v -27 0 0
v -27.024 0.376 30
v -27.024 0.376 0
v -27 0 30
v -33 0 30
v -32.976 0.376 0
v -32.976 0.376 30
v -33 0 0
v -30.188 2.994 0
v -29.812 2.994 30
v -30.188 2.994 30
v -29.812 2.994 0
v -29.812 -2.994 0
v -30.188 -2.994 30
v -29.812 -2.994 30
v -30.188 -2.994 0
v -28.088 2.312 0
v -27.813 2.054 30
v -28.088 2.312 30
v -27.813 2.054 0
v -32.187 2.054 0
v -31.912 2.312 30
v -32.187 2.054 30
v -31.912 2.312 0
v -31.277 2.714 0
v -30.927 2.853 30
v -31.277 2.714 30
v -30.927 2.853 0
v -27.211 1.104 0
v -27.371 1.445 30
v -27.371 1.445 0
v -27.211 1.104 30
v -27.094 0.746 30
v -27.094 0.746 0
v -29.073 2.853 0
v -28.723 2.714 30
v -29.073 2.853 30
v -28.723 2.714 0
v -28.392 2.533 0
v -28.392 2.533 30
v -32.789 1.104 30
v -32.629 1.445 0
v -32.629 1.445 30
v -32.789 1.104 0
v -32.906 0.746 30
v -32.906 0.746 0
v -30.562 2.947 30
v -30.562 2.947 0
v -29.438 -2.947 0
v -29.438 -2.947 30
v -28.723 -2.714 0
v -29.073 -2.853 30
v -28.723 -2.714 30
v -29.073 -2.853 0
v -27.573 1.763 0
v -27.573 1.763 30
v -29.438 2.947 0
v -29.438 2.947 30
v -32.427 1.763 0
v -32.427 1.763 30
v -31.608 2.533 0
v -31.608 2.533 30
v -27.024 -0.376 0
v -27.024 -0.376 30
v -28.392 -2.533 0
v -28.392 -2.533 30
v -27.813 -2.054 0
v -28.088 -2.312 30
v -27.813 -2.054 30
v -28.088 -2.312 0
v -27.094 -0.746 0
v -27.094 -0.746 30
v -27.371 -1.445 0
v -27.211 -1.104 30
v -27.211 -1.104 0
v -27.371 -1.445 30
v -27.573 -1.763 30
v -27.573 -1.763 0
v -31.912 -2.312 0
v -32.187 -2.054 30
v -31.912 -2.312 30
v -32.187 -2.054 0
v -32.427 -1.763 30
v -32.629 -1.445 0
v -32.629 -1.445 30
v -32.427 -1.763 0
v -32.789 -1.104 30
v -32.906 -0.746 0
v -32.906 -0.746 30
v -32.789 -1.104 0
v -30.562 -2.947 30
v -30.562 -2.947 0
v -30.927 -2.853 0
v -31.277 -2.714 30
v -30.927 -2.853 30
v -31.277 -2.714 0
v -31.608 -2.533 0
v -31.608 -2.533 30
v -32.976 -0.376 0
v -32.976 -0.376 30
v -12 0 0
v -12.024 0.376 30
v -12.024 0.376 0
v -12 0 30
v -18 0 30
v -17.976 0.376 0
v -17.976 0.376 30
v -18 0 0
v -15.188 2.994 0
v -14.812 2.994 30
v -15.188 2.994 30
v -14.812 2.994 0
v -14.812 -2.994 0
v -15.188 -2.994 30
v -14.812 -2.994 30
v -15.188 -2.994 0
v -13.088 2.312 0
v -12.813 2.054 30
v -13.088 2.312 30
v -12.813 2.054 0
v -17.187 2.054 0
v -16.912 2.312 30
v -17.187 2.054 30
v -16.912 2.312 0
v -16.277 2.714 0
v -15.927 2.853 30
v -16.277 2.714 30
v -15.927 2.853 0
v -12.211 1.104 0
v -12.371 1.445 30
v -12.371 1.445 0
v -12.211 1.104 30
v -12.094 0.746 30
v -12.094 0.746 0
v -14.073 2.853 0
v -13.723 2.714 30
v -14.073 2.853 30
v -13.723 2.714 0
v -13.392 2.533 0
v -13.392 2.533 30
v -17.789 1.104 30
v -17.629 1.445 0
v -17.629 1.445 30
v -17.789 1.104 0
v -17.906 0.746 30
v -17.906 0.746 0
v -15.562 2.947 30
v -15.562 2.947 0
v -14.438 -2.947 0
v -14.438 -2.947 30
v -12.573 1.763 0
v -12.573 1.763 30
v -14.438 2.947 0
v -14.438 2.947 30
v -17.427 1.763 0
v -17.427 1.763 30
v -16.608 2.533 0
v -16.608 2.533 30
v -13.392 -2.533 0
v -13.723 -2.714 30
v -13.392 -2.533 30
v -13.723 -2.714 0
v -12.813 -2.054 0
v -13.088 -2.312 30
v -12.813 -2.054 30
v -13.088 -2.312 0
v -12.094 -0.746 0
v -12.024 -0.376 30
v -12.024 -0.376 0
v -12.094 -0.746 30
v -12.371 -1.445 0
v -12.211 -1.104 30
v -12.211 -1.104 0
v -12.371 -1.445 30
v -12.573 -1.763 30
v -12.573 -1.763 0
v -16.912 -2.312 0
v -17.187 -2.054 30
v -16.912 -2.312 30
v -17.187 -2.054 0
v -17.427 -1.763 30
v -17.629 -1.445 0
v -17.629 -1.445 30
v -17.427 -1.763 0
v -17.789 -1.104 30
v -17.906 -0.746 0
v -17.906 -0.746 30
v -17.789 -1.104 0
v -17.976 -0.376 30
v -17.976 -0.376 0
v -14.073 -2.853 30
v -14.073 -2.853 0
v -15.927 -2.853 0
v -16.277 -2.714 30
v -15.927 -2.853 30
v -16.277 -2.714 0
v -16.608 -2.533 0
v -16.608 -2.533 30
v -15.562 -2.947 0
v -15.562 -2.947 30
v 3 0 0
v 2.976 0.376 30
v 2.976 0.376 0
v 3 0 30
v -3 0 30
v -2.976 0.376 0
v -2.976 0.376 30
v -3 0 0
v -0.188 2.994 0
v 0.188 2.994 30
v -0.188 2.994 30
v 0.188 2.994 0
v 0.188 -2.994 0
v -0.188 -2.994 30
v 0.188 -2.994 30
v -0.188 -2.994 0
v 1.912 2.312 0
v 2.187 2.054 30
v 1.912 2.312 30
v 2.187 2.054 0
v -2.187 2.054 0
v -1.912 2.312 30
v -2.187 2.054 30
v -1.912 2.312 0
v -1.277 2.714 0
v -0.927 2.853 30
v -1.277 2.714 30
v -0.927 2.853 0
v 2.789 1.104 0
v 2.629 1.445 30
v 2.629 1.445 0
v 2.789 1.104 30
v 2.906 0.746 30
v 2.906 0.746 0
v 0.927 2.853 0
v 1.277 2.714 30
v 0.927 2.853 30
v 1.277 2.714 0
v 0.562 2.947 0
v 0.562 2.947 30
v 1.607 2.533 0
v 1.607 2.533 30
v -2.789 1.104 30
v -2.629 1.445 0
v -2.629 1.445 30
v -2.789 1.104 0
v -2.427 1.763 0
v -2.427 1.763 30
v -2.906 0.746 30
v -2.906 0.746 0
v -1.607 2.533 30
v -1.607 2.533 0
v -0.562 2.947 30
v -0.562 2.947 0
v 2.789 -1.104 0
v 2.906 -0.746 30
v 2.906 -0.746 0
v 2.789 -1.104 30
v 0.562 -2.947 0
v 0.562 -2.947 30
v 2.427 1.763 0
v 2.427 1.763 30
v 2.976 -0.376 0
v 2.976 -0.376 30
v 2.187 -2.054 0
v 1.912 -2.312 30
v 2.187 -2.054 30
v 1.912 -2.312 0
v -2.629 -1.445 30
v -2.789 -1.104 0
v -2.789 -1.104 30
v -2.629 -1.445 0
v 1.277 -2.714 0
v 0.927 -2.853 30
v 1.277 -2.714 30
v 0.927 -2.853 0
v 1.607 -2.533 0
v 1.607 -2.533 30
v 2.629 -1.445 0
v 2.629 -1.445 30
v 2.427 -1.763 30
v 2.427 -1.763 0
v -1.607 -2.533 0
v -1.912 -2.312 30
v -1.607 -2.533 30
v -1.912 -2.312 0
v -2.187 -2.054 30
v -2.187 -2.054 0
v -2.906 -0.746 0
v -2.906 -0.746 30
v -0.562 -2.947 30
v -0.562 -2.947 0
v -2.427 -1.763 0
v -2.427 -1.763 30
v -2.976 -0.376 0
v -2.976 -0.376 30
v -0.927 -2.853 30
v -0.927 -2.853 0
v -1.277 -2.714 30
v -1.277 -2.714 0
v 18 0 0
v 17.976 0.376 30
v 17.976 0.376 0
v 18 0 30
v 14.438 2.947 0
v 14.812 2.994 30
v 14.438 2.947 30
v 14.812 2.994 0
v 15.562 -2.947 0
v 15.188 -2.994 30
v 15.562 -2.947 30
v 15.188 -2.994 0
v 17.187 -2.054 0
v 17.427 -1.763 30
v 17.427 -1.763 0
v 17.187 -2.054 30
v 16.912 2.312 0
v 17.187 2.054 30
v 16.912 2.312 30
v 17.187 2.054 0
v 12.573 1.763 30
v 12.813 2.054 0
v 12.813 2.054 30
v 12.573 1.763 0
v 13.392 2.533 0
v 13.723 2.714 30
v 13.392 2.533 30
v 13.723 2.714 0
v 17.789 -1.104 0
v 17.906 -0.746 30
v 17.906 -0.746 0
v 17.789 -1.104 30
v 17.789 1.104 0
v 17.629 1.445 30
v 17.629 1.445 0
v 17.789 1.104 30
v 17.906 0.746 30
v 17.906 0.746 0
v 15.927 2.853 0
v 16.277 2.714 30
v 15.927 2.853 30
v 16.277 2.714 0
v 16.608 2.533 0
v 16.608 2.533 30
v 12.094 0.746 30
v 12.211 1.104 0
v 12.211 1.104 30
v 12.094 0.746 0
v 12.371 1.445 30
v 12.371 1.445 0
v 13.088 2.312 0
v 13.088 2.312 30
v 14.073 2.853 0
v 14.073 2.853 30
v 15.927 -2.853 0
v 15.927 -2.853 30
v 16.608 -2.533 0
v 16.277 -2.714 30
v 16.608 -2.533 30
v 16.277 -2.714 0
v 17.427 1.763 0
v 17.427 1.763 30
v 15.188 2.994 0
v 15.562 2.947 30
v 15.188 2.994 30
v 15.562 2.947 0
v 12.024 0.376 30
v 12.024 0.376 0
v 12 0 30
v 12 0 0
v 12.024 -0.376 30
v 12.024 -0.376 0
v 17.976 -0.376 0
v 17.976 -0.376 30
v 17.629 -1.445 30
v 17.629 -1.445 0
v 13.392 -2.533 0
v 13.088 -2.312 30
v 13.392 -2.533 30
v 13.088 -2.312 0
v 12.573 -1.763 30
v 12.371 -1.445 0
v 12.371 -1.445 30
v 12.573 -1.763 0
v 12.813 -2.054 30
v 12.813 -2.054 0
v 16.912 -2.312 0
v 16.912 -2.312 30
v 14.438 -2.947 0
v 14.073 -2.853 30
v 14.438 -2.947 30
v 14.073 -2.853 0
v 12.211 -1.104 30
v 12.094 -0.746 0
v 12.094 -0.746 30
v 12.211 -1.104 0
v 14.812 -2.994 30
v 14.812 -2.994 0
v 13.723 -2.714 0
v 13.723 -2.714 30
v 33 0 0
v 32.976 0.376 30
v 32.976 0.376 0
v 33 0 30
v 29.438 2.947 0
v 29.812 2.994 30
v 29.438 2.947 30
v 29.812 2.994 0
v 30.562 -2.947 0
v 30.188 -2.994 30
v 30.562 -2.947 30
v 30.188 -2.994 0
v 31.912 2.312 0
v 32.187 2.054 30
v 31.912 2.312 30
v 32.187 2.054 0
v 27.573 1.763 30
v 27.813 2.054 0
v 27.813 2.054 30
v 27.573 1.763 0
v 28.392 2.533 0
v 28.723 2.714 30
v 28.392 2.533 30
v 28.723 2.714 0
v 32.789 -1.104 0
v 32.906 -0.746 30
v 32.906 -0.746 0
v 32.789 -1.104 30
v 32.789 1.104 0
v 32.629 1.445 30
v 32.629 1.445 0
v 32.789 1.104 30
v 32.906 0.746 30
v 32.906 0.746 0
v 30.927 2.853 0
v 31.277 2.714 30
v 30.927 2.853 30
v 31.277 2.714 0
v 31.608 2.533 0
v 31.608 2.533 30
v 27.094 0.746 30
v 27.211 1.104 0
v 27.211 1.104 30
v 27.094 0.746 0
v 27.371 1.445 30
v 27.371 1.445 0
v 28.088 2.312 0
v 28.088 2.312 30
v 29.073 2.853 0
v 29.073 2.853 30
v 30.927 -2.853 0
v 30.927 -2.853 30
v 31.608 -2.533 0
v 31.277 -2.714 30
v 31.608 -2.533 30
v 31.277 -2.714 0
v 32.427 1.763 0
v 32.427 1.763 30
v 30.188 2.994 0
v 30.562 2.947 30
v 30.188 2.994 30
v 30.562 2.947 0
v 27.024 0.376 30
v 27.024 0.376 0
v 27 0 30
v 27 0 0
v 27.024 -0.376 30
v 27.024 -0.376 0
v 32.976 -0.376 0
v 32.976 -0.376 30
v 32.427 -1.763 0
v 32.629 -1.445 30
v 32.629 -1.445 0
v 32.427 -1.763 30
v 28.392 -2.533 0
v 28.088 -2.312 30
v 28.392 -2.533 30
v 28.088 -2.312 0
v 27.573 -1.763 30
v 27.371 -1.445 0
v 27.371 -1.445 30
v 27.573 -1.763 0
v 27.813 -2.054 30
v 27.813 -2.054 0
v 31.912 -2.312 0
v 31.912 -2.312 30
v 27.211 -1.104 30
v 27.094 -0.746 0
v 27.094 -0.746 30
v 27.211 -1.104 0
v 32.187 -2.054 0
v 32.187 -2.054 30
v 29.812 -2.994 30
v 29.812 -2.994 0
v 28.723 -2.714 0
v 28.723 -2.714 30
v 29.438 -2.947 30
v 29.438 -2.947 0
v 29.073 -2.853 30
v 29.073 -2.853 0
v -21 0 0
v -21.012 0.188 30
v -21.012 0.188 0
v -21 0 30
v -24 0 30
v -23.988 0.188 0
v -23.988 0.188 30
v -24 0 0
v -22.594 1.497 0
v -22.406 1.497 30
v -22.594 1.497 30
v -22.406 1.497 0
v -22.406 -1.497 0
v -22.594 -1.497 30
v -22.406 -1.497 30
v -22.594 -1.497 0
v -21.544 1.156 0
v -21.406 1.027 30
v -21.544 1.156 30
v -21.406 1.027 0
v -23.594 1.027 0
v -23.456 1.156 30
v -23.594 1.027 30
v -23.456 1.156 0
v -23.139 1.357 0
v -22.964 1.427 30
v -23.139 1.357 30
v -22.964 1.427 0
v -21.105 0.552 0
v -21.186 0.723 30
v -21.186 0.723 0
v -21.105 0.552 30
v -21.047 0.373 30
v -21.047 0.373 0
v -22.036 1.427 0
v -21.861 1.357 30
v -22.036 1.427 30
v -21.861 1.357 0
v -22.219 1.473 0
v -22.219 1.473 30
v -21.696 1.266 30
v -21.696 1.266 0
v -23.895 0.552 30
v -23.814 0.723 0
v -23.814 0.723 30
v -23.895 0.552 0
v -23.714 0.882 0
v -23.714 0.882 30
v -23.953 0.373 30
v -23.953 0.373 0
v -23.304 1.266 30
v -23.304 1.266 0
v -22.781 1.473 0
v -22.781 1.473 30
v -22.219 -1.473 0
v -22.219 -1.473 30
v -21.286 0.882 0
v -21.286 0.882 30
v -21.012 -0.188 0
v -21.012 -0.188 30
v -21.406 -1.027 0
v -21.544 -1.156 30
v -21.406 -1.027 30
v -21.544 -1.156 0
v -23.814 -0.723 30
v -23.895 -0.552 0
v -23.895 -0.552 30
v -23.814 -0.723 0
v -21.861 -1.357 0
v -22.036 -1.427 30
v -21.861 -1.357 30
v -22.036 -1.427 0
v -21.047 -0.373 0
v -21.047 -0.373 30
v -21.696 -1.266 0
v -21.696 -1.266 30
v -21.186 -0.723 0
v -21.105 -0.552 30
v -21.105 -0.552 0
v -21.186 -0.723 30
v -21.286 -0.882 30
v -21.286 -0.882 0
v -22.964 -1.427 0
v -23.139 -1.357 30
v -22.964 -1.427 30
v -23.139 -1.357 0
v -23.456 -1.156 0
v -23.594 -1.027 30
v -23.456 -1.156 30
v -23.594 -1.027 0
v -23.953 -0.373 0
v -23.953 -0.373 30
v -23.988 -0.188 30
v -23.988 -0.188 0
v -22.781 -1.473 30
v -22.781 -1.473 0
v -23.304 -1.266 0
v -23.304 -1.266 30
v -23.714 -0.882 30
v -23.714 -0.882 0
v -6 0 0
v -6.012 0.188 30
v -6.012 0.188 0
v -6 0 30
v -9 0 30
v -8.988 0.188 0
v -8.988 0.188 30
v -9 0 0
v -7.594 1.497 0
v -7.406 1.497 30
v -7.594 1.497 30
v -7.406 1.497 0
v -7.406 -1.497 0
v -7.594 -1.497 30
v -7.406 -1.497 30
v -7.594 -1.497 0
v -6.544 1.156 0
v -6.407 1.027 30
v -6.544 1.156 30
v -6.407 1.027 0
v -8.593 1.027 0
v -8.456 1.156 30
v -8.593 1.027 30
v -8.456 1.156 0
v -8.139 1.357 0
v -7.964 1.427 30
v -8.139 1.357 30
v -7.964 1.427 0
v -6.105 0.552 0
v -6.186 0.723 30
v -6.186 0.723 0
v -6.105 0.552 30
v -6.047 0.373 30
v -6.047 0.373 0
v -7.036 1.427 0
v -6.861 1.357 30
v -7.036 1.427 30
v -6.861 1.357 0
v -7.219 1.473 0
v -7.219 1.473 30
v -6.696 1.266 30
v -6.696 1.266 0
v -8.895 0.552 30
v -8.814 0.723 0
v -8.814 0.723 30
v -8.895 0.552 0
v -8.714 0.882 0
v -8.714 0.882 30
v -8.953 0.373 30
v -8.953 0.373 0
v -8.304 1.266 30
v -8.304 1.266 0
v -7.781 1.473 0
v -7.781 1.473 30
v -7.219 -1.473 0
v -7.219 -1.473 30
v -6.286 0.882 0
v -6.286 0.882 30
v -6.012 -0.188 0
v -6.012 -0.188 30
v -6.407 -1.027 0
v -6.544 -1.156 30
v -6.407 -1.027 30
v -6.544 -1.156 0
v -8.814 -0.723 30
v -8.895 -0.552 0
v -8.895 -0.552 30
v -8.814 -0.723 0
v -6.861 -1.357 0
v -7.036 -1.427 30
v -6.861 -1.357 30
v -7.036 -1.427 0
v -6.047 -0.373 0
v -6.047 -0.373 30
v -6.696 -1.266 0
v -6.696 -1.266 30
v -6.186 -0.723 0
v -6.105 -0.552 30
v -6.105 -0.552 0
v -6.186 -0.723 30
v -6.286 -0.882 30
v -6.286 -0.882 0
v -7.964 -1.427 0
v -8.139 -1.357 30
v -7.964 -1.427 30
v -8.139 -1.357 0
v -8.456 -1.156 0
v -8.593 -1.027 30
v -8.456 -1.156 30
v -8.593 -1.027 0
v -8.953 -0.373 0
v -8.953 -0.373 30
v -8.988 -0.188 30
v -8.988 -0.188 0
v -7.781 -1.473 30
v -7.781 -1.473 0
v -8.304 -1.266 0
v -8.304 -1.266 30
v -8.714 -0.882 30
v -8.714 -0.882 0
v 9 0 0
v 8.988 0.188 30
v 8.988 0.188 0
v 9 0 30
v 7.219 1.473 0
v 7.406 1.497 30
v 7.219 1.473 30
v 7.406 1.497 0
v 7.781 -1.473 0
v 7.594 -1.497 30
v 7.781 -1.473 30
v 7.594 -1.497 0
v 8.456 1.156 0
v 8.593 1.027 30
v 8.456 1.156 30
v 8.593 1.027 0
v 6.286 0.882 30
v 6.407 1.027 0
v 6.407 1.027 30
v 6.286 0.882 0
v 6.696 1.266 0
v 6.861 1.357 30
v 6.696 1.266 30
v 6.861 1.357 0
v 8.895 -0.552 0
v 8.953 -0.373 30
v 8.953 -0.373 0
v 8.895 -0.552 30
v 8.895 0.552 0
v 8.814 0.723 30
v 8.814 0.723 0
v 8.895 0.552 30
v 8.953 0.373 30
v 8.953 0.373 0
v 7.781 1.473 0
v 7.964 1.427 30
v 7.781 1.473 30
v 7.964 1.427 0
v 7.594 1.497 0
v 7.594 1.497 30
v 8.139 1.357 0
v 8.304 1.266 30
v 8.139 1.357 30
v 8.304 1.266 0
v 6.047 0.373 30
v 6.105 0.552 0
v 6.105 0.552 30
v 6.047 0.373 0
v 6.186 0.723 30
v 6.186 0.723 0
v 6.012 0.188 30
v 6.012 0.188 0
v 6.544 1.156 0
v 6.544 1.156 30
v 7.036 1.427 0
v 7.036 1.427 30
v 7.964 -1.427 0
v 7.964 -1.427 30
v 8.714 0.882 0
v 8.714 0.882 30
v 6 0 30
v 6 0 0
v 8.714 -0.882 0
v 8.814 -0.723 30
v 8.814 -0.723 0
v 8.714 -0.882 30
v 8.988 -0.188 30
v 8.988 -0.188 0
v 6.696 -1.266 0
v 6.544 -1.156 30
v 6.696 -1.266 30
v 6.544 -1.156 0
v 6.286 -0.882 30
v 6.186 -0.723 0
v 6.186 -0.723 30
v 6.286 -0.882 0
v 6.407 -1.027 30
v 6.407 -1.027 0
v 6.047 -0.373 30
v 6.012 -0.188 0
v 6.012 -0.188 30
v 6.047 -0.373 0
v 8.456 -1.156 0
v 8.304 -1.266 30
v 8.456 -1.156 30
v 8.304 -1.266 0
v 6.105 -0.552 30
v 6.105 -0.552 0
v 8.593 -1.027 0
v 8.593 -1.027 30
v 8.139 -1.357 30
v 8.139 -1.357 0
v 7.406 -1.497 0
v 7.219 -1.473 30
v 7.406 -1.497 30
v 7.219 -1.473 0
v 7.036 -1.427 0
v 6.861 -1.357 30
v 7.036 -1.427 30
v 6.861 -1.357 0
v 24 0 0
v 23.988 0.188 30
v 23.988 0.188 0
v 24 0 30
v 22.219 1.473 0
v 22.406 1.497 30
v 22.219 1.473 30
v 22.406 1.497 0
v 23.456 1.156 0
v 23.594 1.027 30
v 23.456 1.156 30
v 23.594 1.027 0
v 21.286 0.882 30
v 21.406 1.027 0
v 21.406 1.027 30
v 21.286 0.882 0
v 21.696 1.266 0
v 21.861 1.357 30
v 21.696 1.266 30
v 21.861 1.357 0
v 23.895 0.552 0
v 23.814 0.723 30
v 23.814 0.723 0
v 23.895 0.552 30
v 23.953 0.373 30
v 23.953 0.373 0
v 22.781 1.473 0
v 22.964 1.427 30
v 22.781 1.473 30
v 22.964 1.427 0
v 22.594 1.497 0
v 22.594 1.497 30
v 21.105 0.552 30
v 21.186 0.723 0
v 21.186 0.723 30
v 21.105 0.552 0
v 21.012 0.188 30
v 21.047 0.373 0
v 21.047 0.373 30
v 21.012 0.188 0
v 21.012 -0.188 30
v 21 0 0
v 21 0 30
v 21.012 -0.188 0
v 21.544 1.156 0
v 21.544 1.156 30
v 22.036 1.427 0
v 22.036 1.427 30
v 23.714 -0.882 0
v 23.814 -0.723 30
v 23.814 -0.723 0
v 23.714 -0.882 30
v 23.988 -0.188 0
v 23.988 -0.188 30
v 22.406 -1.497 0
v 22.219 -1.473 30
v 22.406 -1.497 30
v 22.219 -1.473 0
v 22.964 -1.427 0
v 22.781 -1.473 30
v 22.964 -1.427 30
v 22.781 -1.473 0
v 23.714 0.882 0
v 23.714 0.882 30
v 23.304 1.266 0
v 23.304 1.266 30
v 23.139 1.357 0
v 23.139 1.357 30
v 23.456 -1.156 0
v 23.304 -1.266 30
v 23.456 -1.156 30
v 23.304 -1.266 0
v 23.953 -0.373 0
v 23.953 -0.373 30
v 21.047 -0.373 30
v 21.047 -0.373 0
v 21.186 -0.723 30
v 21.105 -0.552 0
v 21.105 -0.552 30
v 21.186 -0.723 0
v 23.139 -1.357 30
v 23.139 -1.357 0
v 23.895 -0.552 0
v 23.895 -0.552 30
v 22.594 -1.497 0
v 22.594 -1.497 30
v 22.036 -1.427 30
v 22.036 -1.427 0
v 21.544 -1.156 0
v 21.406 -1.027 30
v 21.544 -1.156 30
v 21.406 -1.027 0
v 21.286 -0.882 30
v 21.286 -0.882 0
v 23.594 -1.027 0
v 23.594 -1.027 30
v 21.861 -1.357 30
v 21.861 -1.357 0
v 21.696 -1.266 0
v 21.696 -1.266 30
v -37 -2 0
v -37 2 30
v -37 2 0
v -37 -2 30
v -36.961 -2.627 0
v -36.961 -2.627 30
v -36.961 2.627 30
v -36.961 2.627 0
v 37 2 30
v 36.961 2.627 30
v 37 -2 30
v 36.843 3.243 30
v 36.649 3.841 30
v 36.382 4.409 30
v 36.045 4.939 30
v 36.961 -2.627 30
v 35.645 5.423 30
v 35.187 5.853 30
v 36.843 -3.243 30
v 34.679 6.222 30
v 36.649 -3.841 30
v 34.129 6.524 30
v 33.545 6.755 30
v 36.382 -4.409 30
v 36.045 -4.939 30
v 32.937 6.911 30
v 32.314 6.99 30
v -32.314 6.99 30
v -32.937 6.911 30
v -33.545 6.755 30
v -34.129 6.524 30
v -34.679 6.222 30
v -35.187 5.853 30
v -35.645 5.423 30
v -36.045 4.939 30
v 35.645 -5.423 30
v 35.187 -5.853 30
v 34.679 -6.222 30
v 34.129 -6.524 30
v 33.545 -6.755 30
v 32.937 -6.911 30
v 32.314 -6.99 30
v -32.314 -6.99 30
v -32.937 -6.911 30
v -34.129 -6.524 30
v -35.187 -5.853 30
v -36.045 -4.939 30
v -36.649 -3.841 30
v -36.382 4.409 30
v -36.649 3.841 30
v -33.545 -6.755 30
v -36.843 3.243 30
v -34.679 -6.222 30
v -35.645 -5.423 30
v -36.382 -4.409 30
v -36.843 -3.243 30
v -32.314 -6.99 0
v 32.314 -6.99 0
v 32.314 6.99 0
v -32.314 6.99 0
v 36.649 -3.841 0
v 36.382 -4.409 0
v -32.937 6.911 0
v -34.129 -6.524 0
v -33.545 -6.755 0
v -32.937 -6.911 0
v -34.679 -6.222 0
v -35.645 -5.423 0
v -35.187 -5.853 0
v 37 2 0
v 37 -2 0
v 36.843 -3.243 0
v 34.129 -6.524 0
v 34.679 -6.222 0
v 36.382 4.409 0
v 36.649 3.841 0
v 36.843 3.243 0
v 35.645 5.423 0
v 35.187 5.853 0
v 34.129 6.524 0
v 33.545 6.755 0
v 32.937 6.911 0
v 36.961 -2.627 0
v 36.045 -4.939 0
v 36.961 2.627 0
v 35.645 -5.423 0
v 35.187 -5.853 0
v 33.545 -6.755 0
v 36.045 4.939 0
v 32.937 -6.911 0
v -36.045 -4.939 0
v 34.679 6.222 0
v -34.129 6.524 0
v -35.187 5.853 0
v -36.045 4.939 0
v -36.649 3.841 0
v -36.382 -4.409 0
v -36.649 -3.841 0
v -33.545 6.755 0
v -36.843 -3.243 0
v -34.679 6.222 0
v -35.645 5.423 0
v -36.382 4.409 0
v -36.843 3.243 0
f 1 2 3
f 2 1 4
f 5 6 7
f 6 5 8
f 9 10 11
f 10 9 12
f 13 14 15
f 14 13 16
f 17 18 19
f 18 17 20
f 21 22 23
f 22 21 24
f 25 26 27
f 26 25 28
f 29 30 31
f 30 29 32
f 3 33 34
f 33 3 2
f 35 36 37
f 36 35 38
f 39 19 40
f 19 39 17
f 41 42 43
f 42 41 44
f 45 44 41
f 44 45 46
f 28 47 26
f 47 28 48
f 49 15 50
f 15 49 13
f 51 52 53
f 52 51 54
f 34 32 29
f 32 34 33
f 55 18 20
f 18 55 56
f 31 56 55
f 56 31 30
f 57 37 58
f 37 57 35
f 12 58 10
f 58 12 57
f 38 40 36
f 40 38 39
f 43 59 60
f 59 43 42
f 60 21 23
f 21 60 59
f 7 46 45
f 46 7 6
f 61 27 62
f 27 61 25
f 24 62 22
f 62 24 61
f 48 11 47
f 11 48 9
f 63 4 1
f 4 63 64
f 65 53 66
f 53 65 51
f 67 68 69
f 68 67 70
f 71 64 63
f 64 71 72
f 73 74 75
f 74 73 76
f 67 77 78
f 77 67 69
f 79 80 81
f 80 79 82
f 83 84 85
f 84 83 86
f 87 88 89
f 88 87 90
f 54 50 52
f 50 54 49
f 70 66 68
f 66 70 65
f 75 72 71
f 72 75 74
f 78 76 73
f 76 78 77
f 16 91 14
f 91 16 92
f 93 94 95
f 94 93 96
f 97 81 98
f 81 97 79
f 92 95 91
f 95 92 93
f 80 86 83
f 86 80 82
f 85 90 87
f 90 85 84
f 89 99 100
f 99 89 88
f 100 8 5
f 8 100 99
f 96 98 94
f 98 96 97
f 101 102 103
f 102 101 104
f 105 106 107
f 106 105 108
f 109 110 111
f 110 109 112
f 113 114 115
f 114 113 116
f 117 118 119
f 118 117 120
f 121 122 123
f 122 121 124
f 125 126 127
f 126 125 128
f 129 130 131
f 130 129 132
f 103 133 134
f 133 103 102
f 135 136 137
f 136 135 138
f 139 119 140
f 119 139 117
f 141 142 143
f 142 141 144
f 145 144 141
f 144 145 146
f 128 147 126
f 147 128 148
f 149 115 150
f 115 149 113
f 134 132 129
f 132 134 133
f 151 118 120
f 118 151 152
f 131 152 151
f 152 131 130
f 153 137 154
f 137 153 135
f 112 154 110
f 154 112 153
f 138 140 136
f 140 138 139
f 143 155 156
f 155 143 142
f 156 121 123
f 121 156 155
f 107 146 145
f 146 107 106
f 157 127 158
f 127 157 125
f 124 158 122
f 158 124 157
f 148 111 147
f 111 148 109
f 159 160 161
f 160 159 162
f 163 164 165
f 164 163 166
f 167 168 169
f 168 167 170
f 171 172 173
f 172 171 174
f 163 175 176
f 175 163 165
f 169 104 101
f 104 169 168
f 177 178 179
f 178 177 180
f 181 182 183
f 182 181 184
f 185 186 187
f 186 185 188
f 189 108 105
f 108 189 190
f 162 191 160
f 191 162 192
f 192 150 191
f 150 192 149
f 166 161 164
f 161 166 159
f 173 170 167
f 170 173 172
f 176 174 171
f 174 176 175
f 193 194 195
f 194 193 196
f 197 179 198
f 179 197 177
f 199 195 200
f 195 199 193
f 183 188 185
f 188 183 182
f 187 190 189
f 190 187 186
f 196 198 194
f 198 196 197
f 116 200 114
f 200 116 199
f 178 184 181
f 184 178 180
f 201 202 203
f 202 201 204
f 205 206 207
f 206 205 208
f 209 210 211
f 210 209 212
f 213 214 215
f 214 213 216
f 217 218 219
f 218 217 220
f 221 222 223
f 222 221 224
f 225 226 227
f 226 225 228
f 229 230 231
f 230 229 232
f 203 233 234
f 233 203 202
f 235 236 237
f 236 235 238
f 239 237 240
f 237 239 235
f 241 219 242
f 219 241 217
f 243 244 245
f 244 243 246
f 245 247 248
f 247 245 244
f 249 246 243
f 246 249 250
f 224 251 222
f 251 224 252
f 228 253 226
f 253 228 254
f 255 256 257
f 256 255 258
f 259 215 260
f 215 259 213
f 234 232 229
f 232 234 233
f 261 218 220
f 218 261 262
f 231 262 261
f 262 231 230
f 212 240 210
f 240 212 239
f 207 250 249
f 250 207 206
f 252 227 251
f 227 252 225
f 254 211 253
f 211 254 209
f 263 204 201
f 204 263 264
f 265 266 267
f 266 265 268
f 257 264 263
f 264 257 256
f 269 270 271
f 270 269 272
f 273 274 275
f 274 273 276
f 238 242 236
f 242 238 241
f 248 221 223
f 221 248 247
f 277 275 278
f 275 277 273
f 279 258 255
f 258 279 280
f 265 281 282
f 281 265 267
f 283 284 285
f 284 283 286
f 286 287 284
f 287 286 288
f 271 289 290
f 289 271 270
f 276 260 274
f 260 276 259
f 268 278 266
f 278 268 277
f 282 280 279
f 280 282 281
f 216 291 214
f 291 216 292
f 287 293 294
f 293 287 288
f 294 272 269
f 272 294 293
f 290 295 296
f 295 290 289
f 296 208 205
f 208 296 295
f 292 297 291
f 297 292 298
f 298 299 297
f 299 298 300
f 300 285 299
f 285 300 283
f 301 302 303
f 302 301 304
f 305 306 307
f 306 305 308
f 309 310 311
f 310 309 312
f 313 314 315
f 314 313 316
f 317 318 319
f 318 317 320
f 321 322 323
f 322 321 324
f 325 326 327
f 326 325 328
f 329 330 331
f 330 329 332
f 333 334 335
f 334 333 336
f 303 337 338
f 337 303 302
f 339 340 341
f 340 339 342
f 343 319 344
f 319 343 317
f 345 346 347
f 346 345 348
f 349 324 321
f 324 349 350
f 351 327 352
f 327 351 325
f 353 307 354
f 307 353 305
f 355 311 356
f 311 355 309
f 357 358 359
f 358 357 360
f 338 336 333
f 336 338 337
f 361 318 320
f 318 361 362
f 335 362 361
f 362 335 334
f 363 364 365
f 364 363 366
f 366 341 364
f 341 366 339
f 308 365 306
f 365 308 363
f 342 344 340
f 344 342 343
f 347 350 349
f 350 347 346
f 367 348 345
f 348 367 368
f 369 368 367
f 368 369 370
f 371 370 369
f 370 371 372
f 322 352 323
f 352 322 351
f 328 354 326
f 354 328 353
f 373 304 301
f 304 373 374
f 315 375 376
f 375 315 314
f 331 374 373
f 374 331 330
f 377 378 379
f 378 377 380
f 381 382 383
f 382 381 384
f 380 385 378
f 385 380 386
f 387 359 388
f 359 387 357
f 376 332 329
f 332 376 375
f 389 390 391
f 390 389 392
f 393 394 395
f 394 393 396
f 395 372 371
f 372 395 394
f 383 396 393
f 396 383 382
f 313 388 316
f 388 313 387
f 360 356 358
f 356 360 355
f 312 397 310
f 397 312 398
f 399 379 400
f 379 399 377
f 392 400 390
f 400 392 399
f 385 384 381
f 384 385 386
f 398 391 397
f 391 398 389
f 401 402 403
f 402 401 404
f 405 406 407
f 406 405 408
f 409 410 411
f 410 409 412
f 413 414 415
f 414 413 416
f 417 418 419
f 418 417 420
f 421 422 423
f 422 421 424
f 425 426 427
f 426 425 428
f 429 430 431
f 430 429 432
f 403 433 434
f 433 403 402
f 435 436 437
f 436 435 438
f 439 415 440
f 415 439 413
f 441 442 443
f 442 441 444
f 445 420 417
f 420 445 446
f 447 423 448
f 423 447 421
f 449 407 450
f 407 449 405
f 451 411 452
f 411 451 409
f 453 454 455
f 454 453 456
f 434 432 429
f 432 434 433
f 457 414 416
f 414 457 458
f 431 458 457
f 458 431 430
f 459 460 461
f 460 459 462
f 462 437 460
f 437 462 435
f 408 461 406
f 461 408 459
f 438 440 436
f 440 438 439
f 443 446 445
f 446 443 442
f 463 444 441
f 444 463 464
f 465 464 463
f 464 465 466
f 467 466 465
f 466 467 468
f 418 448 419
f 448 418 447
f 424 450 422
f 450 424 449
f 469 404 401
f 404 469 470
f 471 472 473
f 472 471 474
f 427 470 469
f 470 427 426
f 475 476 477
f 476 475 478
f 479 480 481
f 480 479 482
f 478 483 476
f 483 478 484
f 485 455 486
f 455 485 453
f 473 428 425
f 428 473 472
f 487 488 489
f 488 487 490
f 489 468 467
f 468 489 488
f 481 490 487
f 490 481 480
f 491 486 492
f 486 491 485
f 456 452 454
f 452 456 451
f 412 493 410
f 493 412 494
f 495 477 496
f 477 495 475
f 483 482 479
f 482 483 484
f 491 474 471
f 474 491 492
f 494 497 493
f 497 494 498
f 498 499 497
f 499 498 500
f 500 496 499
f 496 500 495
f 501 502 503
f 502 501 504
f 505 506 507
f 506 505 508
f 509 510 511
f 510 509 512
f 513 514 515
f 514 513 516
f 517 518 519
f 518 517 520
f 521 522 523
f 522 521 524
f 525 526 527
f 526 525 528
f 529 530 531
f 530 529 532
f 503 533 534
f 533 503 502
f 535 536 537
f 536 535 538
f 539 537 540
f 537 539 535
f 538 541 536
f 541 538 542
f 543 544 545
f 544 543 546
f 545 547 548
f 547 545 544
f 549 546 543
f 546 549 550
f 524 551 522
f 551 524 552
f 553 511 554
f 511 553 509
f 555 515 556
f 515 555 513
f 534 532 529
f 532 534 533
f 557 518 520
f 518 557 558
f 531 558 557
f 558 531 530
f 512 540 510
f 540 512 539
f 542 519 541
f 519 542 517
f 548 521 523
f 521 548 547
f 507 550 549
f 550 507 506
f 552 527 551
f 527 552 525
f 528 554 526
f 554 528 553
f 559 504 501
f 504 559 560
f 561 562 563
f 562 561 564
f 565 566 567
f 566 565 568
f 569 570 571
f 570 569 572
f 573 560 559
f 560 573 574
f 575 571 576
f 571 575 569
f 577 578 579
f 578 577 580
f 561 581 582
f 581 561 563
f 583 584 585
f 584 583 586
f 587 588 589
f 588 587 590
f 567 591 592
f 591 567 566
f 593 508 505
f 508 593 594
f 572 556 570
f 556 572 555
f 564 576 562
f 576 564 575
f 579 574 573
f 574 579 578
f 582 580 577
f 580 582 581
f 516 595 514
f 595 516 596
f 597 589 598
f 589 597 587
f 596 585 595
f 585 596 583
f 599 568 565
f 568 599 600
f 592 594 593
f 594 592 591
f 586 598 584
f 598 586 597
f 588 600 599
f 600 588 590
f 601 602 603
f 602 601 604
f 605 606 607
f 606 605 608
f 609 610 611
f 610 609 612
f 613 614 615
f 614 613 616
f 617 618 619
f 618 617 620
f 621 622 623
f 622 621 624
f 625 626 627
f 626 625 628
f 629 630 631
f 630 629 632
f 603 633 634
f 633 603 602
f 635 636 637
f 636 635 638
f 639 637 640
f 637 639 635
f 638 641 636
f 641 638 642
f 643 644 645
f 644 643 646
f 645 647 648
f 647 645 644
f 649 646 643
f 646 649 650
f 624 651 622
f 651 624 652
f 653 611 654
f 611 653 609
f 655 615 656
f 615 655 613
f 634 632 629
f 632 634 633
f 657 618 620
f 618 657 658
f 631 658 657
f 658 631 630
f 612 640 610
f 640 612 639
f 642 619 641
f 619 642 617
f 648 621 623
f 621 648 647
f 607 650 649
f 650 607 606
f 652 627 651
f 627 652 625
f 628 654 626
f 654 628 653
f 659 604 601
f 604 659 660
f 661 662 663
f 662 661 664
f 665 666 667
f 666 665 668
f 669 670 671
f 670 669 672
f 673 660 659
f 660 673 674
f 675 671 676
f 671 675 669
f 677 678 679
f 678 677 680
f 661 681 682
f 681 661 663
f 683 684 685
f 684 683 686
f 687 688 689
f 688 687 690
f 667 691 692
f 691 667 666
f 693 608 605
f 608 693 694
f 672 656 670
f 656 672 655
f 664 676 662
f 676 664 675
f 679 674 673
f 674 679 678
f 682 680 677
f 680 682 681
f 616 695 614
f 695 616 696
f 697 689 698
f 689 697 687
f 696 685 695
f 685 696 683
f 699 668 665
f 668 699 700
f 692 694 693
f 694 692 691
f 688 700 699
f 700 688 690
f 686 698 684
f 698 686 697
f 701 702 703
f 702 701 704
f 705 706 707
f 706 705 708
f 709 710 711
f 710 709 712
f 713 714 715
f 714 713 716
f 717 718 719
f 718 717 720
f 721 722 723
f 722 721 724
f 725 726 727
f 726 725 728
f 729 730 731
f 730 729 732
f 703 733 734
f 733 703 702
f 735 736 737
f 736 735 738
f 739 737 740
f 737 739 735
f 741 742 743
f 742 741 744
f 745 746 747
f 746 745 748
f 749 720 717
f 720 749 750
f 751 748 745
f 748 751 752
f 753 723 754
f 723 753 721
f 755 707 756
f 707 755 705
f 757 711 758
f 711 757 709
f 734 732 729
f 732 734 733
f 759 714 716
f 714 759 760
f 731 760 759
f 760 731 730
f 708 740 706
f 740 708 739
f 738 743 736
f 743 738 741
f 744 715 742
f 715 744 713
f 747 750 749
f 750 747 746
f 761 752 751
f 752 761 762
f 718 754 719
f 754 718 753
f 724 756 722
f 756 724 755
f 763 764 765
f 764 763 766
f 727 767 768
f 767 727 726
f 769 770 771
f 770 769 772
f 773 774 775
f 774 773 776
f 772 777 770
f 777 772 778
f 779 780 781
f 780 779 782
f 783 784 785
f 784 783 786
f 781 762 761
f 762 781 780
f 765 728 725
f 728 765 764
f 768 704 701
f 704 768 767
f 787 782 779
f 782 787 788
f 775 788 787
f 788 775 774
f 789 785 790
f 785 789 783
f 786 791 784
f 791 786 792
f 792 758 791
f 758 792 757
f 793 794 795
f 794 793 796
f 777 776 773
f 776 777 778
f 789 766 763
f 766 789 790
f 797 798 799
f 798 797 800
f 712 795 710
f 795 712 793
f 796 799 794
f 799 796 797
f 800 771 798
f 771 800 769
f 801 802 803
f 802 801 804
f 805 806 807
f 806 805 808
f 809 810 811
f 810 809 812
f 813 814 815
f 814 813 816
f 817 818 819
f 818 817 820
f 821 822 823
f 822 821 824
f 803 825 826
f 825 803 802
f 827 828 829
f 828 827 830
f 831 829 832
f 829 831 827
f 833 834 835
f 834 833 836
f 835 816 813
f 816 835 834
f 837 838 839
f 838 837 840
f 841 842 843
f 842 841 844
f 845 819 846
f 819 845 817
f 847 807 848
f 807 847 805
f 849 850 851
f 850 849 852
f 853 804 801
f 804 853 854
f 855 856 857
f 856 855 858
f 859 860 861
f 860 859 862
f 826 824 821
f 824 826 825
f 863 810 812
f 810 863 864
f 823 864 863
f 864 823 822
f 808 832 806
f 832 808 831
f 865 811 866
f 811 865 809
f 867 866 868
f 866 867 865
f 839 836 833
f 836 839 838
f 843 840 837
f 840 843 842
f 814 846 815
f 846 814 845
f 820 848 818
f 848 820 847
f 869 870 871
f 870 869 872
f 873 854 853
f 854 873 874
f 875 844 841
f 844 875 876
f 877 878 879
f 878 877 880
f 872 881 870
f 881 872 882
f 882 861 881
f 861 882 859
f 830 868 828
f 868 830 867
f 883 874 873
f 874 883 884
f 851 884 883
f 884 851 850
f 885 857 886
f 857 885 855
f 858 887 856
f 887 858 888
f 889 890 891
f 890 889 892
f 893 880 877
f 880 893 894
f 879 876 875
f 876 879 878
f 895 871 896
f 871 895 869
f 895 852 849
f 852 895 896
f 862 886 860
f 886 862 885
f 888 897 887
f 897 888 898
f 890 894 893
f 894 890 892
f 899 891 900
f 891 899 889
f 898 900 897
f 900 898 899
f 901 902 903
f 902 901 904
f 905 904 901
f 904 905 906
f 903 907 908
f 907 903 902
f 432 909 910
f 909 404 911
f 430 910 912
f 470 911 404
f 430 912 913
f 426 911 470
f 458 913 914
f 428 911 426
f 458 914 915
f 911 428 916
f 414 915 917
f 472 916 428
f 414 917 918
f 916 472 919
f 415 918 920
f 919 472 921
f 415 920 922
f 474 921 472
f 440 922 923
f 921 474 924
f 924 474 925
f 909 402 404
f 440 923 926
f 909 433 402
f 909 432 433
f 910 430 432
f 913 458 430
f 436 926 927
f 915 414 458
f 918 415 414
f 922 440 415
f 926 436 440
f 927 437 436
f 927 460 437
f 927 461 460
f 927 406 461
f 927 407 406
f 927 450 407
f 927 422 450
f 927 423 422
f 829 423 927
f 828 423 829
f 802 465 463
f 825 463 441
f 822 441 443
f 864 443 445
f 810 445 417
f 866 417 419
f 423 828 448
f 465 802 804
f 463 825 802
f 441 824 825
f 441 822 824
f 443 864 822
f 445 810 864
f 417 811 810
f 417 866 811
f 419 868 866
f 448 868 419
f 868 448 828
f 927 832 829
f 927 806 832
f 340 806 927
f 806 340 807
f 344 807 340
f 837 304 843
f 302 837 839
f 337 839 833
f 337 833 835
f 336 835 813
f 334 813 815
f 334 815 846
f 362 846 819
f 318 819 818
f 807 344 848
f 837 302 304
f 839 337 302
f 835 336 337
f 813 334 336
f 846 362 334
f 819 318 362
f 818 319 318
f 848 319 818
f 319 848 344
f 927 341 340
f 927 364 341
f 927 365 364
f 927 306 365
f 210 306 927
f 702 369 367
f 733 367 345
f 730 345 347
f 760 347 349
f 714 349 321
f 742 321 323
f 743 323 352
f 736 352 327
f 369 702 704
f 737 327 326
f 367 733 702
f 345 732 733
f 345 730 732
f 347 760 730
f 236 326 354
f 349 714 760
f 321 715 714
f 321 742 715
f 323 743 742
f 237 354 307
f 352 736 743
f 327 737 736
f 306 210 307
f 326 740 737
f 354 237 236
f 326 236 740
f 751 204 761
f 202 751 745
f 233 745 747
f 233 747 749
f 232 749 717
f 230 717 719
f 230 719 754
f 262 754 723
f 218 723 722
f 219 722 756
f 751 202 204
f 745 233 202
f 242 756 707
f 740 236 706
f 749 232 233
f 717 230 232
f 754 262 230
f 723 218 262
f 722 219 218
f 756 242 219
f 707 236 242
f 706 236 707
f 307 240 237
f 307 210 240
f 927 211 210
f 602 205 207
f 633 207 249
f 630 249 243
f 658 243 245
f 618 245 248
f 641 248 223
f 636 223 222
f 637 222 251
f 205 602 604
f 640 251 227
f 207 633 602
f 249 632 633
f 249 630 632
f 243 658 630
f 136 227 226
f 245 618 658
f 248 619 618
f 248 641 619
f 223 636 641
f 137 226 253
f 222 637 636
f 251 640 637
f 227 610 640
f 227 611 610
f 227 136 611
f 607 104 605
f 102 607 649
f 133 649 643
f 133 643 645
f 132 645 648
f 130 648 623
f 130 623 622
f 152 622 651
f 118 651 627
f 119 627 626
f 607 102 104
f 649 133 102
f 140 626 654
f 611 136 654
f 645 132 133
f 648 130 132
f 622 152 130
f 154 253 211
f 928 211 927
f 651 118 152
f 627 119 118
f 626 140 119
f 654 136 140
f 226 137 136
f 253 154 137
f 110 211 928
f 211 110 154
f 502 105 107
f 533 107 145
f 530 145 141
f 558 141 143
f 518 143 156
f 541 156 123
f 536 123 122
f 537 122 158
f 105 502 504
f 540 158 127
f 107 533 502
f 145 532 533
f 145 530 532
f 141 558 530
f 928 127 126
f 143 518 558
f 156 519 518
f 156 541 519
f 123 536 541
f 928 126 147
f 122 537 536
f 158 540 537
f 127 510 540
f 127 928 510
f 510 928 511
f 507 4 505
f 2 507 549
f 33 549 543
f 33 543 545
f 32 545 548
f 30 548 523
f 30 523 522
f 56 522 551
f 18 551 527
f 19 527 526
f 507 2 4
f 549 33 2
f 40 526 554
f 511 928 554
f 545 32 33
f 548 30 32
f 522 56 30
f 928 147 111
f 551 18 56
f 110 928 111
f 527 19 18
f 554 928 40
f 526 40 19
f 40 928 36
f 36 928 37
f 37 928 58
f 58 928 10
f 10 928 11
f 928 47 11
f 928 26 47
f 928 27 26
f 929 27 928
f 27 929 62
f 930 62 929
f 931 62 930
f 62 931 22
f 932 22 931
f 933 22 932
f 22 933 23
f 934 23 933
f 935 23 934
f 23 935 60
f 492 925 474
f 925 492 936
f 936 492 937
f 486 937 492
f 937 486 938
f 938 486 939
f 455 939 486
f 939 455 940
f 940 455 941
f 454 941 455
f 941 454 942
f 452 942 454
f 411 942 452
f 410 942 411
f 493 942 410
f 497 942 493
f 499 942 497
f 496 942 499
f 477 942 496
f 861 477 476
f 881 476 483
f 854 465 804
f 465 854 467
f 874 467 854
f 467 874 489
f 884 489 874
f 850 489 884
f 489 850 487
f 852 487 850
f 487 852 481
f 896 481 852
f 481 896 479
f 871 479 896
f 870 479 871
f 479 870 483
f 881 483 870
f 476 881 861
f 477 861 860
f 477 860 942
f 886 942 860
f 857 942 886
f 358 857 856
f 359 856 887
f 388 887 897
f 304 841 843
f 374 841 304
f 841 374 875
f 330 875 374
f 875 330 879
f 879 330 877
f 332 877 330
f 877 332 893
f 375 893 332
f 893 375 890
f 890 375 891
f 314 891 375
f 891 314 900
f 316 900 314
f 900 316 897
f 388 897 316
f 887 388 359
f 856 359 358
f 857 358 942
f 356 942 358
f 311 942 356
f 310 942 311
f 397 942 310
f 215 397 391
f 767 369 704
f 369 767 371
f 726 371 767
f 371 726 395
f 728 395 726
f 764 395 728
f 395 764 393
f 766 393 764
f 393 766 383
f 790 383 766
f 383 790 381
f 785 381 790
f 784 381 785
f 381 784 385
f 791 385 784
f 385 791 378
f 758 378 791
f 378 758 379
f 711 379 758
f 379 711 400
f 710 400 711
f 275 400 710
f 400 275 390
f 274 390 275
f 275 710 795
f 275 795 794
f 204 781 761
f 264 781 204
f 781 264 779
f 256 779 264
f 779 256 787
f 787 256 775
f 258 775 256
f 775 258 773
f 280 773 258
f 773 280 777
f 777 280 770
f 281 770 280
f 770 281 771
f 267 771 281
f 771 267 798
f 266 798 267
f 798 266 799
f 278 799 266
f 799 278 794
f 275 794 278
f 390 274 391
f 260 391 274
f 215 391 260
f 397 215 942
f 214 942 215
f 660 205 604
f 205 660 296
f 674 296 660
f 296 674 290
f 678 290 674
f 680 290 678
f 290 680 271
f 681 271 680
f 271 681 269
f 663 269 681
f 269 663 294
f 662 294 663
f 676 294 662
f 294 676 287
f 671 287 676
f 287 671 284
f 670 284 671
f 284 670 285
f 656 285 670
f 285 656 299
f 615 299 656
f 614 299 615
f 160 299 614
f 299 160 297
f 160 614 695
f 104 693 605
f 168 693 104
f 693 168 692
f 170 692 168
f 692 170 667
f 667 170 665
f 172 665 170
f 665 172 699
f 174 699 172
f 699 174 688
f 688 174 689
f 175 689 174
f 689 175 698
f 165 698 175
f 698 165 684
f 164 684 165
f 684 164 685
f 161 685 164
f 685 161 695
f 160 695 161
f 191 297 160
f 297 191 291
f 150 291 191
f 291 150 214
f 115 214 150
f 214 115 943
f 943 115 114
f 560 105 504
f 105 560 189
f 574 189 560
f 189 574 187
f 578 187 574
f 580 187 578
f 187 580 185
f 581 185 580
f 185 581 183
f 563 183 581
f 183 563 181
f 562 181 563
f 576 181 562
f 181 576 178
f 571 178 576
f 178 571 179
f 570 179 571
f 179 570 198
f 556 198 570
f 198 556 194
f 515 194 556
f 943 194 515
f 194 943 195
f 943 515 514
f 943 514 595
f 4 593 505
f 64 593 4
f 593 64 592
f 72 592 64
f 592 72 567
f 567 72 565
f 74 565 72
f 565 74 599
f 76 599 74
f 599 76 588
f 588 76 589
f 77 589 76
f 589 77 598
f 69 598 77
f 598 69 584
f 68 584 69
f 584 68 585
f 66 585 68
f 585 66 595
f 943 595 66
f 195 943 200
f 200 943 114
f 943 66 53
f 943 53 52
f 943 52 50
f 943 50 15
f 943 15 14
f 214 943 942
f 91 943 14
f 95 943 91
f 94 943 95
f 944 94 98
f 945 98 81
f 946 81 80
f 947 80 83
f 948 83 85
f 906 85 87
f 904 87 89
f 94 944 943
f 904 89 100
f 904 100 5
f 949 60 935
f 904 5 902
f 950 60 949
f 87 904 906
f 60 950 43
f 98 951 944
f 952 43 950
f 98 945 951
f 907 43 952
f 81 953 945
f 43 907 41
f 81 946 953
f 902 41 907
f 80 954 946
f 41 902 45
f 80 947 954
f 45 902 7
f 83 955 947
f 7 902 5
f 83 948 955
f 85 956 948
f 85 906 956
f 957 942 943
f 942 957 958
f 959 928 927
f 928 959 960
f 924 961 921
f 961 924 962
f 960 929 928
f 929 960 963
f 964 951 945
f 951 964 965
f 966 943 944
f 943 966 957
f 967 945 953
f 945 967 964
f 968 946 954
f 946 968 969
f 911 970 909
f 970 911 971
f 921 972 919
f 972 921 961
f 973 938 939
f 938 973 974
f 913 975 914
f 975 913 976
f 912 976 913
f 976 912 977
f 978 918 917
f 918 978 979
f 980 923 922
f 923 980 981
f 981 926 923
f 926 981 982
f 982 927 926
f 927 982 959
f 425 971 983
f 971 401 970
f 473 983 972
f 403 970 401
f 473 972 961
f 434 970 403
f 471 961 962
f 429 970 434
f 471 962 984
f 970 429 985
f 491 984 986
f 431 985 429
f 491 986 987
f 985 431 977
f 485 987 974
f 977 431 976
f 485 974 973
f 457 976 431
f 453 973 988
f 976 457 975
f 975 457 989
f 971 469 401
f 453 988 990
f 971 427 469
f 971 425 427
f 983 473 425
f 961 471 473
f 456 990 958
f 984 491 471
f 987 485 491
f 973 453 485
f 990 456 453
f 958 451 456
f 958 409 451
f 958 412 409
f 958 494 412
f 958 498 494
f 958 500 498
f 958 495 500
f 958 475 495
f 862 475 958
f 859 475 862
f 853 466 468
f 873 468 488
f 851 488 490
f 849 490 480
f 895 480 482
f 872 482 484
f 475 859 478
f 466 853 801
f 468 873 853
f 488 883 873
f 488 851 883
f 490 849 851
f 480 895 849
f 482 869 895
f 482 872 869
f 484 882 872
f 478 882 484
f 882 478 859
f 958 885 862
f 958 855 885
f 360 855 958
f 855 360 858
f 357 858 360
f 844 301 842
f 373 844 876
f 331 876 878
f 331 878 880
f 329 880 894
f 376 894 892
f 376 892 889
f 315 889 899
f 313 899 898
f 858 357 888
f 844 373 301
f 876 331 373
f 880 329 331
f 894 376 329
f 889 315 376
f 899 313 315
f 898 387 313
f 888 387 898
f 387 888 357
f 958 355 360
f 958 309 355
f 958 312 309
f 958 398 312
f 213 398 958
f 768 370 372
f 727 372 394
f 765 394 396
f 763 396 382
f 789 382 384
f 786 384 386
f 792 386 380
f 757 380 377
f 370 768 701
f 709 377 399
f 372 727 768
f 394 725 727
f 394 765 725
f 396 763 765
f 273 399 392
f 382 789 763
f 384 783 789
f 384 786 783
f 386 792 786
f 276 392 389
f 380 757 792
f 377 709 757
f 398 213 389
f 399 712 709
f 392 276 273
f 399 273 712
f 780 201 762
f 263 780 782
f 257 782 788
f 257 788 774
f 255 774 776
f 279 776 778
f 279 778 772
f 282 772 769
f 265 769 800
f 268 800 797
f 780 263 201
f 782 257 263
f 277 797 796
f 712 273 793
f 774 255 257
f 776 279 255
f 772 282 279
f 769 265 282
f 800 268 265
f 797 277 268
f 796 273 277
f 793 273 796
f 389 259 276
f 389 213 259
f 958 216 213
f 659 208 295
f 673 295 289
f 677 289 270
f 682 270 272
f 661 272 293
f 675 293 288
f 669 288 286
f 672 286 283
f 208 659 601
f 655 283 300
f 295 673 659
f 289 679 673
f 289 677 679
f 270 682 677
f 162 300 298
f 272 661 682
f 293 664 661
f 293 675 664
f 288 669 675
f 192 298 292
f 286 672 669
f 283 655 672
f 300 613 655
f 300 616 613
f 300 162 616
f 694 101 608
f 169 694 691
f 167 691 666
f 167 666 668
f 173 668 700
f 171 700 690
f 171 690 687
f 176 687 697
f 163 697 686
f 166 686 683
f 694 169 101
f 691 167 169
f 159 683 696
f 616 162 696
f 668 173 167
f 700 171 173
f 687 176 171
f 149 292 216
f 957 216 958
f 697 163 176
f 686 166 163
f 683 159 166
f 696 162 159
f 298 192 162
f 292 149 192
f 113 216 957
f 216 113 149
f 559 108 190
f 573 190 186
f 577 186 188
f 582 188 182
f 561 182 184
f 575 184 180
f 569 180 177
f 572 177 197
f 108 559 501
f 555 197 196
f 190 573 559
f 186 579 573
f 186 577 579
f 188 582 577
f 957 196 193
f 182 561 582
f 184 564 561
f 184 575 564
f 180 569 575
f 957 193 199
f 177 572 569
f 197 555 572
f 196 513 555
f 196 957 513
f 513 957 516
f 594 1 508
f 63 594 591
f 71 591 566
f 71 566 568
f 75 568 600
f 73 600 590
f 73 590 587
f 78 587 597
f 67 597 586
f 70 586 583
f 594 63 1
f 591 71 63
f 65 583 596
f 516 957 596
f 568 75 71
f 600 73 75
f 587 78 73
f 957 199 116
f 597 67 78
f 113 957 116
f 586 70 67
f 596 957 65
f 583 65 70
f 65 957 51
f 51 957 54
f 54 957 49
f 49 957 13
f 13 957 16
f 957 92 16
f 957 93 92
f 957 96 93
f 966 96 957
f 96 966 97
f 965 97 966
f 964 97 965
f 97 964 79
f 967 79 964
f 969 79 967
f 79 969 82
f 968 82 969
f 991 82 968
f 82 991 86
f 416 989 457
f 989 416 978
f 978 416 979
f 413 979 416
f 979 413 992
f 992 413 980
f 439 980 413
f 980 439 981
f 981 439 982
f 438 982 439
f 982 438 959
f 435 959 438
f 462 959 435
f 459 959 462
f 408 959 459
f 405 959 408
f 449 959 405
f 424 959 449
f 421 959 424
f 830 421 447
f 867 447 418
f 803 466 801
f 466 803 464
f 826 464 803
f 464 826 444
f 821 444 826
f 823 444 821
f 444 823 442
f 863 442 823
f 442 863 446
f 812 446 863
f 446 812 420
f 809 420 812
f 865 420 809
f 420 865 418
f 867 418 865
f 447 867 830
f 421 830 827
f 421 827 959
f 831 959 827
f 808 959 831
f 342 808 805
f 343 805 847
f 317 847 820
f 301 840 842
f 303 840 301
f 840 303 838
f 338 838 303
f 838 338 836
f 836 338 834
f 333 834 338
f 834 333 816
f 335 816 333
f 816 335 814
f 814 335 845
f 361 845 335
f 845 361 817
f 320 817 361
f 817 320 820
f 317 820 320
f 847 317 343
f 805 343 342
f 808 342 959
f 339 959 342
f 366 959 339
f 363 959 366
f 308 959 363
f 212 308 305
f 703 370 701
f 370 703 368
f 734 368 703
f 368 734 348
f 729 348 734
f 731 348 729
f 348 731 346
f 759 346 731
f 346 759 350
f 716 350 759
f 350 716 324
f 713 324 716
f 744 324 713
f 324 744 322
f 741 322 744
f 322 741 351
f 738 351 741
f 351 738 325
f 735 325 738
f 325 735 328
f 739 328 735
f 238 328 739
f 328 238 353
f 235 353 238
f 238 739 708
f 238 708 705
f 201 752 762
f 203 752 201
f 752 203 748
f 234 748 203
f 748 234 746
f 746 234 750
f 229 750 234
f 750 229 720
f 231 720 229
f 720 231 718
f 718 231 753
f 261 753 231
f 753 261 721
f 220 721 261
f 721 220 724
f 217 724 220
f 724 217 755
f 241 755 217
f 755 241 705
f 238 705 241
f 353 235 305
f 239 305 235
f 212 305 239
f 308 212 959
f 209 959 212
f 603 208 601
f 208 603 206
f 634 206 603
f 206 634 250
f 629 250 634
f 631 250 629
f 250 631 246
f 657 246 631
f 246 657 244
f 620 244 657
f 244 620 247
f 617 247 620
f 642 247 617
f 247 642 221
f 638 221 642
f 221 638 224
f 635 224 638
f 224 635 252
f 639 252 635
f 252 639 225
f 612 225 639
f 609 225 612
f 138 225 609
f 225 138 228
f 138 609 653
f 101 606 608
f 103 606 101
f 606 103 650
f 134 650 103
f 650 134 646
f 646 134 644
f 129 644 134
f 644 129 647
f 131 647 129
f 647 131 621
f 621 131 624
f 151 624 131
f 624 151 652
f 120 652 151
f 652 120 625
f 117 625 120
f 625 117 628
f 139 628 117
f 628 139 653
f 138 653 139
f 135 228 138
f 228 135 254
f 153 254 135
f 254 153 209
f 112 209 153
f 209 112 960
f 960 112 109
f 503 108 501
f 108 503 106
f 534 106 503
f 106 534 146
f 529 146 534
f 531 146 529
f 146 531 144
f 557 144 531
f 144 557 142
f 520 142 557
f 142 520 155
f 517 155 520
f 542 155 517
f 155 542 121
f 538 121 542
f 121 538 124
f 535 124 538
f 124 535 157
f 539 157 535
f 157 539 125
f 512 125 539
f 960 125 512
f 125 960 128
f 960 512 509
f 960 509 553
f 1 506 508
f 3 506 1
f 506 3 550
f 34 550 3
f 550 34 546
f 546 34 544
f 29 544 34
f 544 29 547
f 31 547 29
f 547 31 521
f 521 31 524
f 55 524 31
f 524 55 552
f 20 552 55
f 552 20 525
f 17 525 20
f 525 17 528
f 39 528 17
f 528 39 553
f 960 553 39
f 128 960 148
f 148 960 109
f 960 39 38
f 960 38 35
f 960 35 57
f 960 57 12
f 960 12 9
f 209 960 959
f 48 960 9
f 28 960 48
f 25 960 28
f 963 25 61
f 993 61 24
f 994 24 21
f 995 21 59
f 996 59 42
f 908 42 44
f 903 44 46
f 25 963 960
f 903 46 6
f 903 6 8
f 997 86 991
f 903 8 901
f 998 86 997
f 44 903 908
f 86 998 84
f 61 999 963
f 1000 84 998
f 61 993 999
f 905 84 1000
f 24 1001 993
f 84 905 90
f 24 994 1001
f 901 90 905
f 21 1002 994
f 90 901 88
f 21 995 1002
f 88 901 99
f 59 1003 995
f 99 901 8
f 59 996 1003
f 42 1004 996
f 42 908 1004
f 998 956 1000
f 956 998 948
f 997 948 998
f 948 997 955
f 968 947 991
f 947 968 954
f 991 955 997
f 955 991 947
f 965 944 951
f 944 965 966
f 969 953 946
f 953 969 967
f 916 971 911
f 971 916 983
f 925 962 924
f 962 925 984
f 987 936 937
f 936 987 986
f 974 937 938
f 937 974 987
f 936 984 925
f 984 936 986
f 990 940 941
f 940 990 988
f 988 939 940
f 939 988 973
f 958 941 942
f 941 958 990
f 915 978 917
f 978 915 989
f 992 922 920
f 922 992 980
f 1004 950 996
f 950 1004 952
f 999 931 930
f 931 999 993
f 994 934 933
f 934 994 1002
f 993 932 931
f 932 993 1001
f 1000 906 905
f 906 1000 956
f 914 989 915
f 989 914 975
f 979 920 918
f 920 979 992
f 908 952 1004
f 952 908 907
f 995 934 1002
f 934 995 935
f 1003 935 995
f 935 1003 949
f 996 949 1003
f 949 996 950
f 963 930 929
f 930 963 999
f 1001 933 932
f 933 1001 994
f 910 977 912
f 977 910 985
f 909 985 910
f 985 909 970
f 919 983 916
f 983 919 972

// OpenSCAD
$fn = 50;


difference() {
	union() {
		translate(v = [0, 0, 0]) {
			rotate(a = [0, 0, 0]) {
				hull() {
					translate(v = [-32.0000000000, 2.0000000000, 0]) {
						rotate(a = [0, 0, 0]) {
							translate(v = [0, 0, 0]) {
								rotate(a = [0, 0, 0]) {
									cylinder(h = 30, r = 5);
								}
							}
						}
					}
					translate(v = [32.0000000000, 2.0000000000, 0]) {
						rotate(a = [0, 0, 0]) {
							translate(v = [0, 0, 0]) {
								rotate(a = [0, 0, 0]) {
									cylinder(h = 30, r = 5);
								}
							}
						}
					}
					translate(v = [-32.0000000000, -2.0000000000, 0]) {
						rotate(a = [0, 0, 0]) {
							translate(v = [0, 0, 0]) {
								rotate(a = [0, 0, 0]) {
									cylinder(h = 30, r = 5);
								}
							}
						}
					}
					translate(v = [32.0000000000, -2.0000000000, 0]) {
						rotate(a = [0, 0, 0]) {
							translate(v = [0, 0, 0]) {
								rotate(a = [0, 0, 0]) {
									cylinder(h = 30, r = 5);
								}
							}
						}
					}
				}
			}
		}
	}
	union() {
		translate(v = [-30.0000000000, 0.0000000000, 0]) {
			rotate(a = [0, 0, 0]) {
				translate(v = [0, 0, -50]) {
					rotate(a = [0, 0, 0]) {
						cylinder(h = 100, r = 3.0000000000);
					}
				}
			}
		}
		translate(v = [-15.0000000000, 0.0000000000, 0]) {
			rotate(a = [0, 0, 0]) {
				translate(v = [0, 0, -50]) {
					rotate(a = [0, 0, 0]) {
						cylinder(h = 100, r = 3.0000000000);
					}
				}
			}
		}
		translate(v = [0.0000000000, 0.0000000000, 0]) {
			rotate(a = [0, 0, 0]) {
				translate(v = [0, 0, -50]) {
					rotate(a = [0, 0, 0]) {
						cylinder(h = 100, r = 3.0000000000);
					}
				}
			}
		}
		translate(v = [15.0000000000, 0.0000000000, 0]) {
			rotate(a = [0, 0, 0]) {
				translate(v = [0, 0, -50]) {
					rotate(a = [0, 0, 0]) {
						cylinder(h = 100, r = 3.0000000000);
					}
				}
			}
		}
		translate(v = [30.0000000000, 0.0000000000, 0]) {
			rotate(a = [0, 0, 0]) {
				translate(v = [0, 0, -50]) {
					rotate(a = [0, 0, 0]) {
						cylinder(h = 100, r = 3.0000000000);
					}
				}
			}
		}
		translate(v = [-30.0000000000, 0.0000000000, 0]) {
			rotate(a = [0, 0, 0]) {
				translate(v = [0, 0, -50]) {
					rotate(a = [0, 0, 0]) {
						cylinder(h = 100, r = 1.5000000000);
					}
				}
			}
		}
		translate(v = [-22.5000000000, 0.0000000000, 0]) {
			rotate(a = [0, 0, 0]) {
				translate(v = [0, 0, -50]) {
					rotate(a = [0, 0, 0]) {
						cylinder(h = 100, r = 1.5000000000);
					}
				}
			}
		}
		translate(v = [-15.0000000000, 0.0000000000, 0]) {
			rotate(a = [0, 0, 0]) {
				translate(v = [0, 0, -50]) {
					rotate(a = [0, 0, 0]) {
						cylinder(h = 100, r = 1.5000000000);
					}
				}
			}
		}
		translate(v = [-7.5000000000, 0.0000000000, 0]) {
			rotate(a = [0, 0, 0]) {
				translate(v = [0, 0, -50]) {
					rotate(a = [0, 0, 0]) {
						cylinder(h = 100, r = 1.5000000000);
					}
				}
			}
		}
		translate(v = [0.0000000000, 0.0000000000, 0]) {
			rotate(a = [0, 0, 0]) {
				translate(v = [0, 0, -50]) {
					rotate(a = [0, 0, 0]) {
						cylinder(h = 100, r = 1.5000000000);
					}
				}
			}
		}
		translate(v = [7.5000000000, 0.0000000000, 0]) {
			rotate(a = [0, 0, 0]) {
				translate(v = [0, 0, -50]) {
					rotate(a = [0, 0, 0]) {
						cylinder(h = 100, r = 1.5000000000);
					}
				}
			}
		}
		translate(v = [15.0000000000, 0.0000000000, 0]) {
			rotate(a = [0, 0, 0]) {
				translate(v = [0, 0, -50]) {
					rotate(a = [0, 0, 0]) {
						cylinder(h = 100, r = 1.5000000000);
					}
				}
			}
		}
		translate(v = [22.5000000000, 0.0000000000, 0]) {
			rotate(a = [0, 0, 0]) {
				translate(v = [0, 0, -50]) {
					rotate(a = [0, 0, 0]) {
						cylinder(h = 100, r = 1.5000000000);
					}
				}
			}
		}
		translate(v = [30.0000000000, 0.0000000000, 0]) {
			rotate(a = [0, 0, 0]) {
				translate(v = [0, 0, -50]) {
					rotate(a = [0, 0, 0]) {
						cylinder(h = 100, r = 1.5000000000);
					}
				}
			}
		}
	}
}
